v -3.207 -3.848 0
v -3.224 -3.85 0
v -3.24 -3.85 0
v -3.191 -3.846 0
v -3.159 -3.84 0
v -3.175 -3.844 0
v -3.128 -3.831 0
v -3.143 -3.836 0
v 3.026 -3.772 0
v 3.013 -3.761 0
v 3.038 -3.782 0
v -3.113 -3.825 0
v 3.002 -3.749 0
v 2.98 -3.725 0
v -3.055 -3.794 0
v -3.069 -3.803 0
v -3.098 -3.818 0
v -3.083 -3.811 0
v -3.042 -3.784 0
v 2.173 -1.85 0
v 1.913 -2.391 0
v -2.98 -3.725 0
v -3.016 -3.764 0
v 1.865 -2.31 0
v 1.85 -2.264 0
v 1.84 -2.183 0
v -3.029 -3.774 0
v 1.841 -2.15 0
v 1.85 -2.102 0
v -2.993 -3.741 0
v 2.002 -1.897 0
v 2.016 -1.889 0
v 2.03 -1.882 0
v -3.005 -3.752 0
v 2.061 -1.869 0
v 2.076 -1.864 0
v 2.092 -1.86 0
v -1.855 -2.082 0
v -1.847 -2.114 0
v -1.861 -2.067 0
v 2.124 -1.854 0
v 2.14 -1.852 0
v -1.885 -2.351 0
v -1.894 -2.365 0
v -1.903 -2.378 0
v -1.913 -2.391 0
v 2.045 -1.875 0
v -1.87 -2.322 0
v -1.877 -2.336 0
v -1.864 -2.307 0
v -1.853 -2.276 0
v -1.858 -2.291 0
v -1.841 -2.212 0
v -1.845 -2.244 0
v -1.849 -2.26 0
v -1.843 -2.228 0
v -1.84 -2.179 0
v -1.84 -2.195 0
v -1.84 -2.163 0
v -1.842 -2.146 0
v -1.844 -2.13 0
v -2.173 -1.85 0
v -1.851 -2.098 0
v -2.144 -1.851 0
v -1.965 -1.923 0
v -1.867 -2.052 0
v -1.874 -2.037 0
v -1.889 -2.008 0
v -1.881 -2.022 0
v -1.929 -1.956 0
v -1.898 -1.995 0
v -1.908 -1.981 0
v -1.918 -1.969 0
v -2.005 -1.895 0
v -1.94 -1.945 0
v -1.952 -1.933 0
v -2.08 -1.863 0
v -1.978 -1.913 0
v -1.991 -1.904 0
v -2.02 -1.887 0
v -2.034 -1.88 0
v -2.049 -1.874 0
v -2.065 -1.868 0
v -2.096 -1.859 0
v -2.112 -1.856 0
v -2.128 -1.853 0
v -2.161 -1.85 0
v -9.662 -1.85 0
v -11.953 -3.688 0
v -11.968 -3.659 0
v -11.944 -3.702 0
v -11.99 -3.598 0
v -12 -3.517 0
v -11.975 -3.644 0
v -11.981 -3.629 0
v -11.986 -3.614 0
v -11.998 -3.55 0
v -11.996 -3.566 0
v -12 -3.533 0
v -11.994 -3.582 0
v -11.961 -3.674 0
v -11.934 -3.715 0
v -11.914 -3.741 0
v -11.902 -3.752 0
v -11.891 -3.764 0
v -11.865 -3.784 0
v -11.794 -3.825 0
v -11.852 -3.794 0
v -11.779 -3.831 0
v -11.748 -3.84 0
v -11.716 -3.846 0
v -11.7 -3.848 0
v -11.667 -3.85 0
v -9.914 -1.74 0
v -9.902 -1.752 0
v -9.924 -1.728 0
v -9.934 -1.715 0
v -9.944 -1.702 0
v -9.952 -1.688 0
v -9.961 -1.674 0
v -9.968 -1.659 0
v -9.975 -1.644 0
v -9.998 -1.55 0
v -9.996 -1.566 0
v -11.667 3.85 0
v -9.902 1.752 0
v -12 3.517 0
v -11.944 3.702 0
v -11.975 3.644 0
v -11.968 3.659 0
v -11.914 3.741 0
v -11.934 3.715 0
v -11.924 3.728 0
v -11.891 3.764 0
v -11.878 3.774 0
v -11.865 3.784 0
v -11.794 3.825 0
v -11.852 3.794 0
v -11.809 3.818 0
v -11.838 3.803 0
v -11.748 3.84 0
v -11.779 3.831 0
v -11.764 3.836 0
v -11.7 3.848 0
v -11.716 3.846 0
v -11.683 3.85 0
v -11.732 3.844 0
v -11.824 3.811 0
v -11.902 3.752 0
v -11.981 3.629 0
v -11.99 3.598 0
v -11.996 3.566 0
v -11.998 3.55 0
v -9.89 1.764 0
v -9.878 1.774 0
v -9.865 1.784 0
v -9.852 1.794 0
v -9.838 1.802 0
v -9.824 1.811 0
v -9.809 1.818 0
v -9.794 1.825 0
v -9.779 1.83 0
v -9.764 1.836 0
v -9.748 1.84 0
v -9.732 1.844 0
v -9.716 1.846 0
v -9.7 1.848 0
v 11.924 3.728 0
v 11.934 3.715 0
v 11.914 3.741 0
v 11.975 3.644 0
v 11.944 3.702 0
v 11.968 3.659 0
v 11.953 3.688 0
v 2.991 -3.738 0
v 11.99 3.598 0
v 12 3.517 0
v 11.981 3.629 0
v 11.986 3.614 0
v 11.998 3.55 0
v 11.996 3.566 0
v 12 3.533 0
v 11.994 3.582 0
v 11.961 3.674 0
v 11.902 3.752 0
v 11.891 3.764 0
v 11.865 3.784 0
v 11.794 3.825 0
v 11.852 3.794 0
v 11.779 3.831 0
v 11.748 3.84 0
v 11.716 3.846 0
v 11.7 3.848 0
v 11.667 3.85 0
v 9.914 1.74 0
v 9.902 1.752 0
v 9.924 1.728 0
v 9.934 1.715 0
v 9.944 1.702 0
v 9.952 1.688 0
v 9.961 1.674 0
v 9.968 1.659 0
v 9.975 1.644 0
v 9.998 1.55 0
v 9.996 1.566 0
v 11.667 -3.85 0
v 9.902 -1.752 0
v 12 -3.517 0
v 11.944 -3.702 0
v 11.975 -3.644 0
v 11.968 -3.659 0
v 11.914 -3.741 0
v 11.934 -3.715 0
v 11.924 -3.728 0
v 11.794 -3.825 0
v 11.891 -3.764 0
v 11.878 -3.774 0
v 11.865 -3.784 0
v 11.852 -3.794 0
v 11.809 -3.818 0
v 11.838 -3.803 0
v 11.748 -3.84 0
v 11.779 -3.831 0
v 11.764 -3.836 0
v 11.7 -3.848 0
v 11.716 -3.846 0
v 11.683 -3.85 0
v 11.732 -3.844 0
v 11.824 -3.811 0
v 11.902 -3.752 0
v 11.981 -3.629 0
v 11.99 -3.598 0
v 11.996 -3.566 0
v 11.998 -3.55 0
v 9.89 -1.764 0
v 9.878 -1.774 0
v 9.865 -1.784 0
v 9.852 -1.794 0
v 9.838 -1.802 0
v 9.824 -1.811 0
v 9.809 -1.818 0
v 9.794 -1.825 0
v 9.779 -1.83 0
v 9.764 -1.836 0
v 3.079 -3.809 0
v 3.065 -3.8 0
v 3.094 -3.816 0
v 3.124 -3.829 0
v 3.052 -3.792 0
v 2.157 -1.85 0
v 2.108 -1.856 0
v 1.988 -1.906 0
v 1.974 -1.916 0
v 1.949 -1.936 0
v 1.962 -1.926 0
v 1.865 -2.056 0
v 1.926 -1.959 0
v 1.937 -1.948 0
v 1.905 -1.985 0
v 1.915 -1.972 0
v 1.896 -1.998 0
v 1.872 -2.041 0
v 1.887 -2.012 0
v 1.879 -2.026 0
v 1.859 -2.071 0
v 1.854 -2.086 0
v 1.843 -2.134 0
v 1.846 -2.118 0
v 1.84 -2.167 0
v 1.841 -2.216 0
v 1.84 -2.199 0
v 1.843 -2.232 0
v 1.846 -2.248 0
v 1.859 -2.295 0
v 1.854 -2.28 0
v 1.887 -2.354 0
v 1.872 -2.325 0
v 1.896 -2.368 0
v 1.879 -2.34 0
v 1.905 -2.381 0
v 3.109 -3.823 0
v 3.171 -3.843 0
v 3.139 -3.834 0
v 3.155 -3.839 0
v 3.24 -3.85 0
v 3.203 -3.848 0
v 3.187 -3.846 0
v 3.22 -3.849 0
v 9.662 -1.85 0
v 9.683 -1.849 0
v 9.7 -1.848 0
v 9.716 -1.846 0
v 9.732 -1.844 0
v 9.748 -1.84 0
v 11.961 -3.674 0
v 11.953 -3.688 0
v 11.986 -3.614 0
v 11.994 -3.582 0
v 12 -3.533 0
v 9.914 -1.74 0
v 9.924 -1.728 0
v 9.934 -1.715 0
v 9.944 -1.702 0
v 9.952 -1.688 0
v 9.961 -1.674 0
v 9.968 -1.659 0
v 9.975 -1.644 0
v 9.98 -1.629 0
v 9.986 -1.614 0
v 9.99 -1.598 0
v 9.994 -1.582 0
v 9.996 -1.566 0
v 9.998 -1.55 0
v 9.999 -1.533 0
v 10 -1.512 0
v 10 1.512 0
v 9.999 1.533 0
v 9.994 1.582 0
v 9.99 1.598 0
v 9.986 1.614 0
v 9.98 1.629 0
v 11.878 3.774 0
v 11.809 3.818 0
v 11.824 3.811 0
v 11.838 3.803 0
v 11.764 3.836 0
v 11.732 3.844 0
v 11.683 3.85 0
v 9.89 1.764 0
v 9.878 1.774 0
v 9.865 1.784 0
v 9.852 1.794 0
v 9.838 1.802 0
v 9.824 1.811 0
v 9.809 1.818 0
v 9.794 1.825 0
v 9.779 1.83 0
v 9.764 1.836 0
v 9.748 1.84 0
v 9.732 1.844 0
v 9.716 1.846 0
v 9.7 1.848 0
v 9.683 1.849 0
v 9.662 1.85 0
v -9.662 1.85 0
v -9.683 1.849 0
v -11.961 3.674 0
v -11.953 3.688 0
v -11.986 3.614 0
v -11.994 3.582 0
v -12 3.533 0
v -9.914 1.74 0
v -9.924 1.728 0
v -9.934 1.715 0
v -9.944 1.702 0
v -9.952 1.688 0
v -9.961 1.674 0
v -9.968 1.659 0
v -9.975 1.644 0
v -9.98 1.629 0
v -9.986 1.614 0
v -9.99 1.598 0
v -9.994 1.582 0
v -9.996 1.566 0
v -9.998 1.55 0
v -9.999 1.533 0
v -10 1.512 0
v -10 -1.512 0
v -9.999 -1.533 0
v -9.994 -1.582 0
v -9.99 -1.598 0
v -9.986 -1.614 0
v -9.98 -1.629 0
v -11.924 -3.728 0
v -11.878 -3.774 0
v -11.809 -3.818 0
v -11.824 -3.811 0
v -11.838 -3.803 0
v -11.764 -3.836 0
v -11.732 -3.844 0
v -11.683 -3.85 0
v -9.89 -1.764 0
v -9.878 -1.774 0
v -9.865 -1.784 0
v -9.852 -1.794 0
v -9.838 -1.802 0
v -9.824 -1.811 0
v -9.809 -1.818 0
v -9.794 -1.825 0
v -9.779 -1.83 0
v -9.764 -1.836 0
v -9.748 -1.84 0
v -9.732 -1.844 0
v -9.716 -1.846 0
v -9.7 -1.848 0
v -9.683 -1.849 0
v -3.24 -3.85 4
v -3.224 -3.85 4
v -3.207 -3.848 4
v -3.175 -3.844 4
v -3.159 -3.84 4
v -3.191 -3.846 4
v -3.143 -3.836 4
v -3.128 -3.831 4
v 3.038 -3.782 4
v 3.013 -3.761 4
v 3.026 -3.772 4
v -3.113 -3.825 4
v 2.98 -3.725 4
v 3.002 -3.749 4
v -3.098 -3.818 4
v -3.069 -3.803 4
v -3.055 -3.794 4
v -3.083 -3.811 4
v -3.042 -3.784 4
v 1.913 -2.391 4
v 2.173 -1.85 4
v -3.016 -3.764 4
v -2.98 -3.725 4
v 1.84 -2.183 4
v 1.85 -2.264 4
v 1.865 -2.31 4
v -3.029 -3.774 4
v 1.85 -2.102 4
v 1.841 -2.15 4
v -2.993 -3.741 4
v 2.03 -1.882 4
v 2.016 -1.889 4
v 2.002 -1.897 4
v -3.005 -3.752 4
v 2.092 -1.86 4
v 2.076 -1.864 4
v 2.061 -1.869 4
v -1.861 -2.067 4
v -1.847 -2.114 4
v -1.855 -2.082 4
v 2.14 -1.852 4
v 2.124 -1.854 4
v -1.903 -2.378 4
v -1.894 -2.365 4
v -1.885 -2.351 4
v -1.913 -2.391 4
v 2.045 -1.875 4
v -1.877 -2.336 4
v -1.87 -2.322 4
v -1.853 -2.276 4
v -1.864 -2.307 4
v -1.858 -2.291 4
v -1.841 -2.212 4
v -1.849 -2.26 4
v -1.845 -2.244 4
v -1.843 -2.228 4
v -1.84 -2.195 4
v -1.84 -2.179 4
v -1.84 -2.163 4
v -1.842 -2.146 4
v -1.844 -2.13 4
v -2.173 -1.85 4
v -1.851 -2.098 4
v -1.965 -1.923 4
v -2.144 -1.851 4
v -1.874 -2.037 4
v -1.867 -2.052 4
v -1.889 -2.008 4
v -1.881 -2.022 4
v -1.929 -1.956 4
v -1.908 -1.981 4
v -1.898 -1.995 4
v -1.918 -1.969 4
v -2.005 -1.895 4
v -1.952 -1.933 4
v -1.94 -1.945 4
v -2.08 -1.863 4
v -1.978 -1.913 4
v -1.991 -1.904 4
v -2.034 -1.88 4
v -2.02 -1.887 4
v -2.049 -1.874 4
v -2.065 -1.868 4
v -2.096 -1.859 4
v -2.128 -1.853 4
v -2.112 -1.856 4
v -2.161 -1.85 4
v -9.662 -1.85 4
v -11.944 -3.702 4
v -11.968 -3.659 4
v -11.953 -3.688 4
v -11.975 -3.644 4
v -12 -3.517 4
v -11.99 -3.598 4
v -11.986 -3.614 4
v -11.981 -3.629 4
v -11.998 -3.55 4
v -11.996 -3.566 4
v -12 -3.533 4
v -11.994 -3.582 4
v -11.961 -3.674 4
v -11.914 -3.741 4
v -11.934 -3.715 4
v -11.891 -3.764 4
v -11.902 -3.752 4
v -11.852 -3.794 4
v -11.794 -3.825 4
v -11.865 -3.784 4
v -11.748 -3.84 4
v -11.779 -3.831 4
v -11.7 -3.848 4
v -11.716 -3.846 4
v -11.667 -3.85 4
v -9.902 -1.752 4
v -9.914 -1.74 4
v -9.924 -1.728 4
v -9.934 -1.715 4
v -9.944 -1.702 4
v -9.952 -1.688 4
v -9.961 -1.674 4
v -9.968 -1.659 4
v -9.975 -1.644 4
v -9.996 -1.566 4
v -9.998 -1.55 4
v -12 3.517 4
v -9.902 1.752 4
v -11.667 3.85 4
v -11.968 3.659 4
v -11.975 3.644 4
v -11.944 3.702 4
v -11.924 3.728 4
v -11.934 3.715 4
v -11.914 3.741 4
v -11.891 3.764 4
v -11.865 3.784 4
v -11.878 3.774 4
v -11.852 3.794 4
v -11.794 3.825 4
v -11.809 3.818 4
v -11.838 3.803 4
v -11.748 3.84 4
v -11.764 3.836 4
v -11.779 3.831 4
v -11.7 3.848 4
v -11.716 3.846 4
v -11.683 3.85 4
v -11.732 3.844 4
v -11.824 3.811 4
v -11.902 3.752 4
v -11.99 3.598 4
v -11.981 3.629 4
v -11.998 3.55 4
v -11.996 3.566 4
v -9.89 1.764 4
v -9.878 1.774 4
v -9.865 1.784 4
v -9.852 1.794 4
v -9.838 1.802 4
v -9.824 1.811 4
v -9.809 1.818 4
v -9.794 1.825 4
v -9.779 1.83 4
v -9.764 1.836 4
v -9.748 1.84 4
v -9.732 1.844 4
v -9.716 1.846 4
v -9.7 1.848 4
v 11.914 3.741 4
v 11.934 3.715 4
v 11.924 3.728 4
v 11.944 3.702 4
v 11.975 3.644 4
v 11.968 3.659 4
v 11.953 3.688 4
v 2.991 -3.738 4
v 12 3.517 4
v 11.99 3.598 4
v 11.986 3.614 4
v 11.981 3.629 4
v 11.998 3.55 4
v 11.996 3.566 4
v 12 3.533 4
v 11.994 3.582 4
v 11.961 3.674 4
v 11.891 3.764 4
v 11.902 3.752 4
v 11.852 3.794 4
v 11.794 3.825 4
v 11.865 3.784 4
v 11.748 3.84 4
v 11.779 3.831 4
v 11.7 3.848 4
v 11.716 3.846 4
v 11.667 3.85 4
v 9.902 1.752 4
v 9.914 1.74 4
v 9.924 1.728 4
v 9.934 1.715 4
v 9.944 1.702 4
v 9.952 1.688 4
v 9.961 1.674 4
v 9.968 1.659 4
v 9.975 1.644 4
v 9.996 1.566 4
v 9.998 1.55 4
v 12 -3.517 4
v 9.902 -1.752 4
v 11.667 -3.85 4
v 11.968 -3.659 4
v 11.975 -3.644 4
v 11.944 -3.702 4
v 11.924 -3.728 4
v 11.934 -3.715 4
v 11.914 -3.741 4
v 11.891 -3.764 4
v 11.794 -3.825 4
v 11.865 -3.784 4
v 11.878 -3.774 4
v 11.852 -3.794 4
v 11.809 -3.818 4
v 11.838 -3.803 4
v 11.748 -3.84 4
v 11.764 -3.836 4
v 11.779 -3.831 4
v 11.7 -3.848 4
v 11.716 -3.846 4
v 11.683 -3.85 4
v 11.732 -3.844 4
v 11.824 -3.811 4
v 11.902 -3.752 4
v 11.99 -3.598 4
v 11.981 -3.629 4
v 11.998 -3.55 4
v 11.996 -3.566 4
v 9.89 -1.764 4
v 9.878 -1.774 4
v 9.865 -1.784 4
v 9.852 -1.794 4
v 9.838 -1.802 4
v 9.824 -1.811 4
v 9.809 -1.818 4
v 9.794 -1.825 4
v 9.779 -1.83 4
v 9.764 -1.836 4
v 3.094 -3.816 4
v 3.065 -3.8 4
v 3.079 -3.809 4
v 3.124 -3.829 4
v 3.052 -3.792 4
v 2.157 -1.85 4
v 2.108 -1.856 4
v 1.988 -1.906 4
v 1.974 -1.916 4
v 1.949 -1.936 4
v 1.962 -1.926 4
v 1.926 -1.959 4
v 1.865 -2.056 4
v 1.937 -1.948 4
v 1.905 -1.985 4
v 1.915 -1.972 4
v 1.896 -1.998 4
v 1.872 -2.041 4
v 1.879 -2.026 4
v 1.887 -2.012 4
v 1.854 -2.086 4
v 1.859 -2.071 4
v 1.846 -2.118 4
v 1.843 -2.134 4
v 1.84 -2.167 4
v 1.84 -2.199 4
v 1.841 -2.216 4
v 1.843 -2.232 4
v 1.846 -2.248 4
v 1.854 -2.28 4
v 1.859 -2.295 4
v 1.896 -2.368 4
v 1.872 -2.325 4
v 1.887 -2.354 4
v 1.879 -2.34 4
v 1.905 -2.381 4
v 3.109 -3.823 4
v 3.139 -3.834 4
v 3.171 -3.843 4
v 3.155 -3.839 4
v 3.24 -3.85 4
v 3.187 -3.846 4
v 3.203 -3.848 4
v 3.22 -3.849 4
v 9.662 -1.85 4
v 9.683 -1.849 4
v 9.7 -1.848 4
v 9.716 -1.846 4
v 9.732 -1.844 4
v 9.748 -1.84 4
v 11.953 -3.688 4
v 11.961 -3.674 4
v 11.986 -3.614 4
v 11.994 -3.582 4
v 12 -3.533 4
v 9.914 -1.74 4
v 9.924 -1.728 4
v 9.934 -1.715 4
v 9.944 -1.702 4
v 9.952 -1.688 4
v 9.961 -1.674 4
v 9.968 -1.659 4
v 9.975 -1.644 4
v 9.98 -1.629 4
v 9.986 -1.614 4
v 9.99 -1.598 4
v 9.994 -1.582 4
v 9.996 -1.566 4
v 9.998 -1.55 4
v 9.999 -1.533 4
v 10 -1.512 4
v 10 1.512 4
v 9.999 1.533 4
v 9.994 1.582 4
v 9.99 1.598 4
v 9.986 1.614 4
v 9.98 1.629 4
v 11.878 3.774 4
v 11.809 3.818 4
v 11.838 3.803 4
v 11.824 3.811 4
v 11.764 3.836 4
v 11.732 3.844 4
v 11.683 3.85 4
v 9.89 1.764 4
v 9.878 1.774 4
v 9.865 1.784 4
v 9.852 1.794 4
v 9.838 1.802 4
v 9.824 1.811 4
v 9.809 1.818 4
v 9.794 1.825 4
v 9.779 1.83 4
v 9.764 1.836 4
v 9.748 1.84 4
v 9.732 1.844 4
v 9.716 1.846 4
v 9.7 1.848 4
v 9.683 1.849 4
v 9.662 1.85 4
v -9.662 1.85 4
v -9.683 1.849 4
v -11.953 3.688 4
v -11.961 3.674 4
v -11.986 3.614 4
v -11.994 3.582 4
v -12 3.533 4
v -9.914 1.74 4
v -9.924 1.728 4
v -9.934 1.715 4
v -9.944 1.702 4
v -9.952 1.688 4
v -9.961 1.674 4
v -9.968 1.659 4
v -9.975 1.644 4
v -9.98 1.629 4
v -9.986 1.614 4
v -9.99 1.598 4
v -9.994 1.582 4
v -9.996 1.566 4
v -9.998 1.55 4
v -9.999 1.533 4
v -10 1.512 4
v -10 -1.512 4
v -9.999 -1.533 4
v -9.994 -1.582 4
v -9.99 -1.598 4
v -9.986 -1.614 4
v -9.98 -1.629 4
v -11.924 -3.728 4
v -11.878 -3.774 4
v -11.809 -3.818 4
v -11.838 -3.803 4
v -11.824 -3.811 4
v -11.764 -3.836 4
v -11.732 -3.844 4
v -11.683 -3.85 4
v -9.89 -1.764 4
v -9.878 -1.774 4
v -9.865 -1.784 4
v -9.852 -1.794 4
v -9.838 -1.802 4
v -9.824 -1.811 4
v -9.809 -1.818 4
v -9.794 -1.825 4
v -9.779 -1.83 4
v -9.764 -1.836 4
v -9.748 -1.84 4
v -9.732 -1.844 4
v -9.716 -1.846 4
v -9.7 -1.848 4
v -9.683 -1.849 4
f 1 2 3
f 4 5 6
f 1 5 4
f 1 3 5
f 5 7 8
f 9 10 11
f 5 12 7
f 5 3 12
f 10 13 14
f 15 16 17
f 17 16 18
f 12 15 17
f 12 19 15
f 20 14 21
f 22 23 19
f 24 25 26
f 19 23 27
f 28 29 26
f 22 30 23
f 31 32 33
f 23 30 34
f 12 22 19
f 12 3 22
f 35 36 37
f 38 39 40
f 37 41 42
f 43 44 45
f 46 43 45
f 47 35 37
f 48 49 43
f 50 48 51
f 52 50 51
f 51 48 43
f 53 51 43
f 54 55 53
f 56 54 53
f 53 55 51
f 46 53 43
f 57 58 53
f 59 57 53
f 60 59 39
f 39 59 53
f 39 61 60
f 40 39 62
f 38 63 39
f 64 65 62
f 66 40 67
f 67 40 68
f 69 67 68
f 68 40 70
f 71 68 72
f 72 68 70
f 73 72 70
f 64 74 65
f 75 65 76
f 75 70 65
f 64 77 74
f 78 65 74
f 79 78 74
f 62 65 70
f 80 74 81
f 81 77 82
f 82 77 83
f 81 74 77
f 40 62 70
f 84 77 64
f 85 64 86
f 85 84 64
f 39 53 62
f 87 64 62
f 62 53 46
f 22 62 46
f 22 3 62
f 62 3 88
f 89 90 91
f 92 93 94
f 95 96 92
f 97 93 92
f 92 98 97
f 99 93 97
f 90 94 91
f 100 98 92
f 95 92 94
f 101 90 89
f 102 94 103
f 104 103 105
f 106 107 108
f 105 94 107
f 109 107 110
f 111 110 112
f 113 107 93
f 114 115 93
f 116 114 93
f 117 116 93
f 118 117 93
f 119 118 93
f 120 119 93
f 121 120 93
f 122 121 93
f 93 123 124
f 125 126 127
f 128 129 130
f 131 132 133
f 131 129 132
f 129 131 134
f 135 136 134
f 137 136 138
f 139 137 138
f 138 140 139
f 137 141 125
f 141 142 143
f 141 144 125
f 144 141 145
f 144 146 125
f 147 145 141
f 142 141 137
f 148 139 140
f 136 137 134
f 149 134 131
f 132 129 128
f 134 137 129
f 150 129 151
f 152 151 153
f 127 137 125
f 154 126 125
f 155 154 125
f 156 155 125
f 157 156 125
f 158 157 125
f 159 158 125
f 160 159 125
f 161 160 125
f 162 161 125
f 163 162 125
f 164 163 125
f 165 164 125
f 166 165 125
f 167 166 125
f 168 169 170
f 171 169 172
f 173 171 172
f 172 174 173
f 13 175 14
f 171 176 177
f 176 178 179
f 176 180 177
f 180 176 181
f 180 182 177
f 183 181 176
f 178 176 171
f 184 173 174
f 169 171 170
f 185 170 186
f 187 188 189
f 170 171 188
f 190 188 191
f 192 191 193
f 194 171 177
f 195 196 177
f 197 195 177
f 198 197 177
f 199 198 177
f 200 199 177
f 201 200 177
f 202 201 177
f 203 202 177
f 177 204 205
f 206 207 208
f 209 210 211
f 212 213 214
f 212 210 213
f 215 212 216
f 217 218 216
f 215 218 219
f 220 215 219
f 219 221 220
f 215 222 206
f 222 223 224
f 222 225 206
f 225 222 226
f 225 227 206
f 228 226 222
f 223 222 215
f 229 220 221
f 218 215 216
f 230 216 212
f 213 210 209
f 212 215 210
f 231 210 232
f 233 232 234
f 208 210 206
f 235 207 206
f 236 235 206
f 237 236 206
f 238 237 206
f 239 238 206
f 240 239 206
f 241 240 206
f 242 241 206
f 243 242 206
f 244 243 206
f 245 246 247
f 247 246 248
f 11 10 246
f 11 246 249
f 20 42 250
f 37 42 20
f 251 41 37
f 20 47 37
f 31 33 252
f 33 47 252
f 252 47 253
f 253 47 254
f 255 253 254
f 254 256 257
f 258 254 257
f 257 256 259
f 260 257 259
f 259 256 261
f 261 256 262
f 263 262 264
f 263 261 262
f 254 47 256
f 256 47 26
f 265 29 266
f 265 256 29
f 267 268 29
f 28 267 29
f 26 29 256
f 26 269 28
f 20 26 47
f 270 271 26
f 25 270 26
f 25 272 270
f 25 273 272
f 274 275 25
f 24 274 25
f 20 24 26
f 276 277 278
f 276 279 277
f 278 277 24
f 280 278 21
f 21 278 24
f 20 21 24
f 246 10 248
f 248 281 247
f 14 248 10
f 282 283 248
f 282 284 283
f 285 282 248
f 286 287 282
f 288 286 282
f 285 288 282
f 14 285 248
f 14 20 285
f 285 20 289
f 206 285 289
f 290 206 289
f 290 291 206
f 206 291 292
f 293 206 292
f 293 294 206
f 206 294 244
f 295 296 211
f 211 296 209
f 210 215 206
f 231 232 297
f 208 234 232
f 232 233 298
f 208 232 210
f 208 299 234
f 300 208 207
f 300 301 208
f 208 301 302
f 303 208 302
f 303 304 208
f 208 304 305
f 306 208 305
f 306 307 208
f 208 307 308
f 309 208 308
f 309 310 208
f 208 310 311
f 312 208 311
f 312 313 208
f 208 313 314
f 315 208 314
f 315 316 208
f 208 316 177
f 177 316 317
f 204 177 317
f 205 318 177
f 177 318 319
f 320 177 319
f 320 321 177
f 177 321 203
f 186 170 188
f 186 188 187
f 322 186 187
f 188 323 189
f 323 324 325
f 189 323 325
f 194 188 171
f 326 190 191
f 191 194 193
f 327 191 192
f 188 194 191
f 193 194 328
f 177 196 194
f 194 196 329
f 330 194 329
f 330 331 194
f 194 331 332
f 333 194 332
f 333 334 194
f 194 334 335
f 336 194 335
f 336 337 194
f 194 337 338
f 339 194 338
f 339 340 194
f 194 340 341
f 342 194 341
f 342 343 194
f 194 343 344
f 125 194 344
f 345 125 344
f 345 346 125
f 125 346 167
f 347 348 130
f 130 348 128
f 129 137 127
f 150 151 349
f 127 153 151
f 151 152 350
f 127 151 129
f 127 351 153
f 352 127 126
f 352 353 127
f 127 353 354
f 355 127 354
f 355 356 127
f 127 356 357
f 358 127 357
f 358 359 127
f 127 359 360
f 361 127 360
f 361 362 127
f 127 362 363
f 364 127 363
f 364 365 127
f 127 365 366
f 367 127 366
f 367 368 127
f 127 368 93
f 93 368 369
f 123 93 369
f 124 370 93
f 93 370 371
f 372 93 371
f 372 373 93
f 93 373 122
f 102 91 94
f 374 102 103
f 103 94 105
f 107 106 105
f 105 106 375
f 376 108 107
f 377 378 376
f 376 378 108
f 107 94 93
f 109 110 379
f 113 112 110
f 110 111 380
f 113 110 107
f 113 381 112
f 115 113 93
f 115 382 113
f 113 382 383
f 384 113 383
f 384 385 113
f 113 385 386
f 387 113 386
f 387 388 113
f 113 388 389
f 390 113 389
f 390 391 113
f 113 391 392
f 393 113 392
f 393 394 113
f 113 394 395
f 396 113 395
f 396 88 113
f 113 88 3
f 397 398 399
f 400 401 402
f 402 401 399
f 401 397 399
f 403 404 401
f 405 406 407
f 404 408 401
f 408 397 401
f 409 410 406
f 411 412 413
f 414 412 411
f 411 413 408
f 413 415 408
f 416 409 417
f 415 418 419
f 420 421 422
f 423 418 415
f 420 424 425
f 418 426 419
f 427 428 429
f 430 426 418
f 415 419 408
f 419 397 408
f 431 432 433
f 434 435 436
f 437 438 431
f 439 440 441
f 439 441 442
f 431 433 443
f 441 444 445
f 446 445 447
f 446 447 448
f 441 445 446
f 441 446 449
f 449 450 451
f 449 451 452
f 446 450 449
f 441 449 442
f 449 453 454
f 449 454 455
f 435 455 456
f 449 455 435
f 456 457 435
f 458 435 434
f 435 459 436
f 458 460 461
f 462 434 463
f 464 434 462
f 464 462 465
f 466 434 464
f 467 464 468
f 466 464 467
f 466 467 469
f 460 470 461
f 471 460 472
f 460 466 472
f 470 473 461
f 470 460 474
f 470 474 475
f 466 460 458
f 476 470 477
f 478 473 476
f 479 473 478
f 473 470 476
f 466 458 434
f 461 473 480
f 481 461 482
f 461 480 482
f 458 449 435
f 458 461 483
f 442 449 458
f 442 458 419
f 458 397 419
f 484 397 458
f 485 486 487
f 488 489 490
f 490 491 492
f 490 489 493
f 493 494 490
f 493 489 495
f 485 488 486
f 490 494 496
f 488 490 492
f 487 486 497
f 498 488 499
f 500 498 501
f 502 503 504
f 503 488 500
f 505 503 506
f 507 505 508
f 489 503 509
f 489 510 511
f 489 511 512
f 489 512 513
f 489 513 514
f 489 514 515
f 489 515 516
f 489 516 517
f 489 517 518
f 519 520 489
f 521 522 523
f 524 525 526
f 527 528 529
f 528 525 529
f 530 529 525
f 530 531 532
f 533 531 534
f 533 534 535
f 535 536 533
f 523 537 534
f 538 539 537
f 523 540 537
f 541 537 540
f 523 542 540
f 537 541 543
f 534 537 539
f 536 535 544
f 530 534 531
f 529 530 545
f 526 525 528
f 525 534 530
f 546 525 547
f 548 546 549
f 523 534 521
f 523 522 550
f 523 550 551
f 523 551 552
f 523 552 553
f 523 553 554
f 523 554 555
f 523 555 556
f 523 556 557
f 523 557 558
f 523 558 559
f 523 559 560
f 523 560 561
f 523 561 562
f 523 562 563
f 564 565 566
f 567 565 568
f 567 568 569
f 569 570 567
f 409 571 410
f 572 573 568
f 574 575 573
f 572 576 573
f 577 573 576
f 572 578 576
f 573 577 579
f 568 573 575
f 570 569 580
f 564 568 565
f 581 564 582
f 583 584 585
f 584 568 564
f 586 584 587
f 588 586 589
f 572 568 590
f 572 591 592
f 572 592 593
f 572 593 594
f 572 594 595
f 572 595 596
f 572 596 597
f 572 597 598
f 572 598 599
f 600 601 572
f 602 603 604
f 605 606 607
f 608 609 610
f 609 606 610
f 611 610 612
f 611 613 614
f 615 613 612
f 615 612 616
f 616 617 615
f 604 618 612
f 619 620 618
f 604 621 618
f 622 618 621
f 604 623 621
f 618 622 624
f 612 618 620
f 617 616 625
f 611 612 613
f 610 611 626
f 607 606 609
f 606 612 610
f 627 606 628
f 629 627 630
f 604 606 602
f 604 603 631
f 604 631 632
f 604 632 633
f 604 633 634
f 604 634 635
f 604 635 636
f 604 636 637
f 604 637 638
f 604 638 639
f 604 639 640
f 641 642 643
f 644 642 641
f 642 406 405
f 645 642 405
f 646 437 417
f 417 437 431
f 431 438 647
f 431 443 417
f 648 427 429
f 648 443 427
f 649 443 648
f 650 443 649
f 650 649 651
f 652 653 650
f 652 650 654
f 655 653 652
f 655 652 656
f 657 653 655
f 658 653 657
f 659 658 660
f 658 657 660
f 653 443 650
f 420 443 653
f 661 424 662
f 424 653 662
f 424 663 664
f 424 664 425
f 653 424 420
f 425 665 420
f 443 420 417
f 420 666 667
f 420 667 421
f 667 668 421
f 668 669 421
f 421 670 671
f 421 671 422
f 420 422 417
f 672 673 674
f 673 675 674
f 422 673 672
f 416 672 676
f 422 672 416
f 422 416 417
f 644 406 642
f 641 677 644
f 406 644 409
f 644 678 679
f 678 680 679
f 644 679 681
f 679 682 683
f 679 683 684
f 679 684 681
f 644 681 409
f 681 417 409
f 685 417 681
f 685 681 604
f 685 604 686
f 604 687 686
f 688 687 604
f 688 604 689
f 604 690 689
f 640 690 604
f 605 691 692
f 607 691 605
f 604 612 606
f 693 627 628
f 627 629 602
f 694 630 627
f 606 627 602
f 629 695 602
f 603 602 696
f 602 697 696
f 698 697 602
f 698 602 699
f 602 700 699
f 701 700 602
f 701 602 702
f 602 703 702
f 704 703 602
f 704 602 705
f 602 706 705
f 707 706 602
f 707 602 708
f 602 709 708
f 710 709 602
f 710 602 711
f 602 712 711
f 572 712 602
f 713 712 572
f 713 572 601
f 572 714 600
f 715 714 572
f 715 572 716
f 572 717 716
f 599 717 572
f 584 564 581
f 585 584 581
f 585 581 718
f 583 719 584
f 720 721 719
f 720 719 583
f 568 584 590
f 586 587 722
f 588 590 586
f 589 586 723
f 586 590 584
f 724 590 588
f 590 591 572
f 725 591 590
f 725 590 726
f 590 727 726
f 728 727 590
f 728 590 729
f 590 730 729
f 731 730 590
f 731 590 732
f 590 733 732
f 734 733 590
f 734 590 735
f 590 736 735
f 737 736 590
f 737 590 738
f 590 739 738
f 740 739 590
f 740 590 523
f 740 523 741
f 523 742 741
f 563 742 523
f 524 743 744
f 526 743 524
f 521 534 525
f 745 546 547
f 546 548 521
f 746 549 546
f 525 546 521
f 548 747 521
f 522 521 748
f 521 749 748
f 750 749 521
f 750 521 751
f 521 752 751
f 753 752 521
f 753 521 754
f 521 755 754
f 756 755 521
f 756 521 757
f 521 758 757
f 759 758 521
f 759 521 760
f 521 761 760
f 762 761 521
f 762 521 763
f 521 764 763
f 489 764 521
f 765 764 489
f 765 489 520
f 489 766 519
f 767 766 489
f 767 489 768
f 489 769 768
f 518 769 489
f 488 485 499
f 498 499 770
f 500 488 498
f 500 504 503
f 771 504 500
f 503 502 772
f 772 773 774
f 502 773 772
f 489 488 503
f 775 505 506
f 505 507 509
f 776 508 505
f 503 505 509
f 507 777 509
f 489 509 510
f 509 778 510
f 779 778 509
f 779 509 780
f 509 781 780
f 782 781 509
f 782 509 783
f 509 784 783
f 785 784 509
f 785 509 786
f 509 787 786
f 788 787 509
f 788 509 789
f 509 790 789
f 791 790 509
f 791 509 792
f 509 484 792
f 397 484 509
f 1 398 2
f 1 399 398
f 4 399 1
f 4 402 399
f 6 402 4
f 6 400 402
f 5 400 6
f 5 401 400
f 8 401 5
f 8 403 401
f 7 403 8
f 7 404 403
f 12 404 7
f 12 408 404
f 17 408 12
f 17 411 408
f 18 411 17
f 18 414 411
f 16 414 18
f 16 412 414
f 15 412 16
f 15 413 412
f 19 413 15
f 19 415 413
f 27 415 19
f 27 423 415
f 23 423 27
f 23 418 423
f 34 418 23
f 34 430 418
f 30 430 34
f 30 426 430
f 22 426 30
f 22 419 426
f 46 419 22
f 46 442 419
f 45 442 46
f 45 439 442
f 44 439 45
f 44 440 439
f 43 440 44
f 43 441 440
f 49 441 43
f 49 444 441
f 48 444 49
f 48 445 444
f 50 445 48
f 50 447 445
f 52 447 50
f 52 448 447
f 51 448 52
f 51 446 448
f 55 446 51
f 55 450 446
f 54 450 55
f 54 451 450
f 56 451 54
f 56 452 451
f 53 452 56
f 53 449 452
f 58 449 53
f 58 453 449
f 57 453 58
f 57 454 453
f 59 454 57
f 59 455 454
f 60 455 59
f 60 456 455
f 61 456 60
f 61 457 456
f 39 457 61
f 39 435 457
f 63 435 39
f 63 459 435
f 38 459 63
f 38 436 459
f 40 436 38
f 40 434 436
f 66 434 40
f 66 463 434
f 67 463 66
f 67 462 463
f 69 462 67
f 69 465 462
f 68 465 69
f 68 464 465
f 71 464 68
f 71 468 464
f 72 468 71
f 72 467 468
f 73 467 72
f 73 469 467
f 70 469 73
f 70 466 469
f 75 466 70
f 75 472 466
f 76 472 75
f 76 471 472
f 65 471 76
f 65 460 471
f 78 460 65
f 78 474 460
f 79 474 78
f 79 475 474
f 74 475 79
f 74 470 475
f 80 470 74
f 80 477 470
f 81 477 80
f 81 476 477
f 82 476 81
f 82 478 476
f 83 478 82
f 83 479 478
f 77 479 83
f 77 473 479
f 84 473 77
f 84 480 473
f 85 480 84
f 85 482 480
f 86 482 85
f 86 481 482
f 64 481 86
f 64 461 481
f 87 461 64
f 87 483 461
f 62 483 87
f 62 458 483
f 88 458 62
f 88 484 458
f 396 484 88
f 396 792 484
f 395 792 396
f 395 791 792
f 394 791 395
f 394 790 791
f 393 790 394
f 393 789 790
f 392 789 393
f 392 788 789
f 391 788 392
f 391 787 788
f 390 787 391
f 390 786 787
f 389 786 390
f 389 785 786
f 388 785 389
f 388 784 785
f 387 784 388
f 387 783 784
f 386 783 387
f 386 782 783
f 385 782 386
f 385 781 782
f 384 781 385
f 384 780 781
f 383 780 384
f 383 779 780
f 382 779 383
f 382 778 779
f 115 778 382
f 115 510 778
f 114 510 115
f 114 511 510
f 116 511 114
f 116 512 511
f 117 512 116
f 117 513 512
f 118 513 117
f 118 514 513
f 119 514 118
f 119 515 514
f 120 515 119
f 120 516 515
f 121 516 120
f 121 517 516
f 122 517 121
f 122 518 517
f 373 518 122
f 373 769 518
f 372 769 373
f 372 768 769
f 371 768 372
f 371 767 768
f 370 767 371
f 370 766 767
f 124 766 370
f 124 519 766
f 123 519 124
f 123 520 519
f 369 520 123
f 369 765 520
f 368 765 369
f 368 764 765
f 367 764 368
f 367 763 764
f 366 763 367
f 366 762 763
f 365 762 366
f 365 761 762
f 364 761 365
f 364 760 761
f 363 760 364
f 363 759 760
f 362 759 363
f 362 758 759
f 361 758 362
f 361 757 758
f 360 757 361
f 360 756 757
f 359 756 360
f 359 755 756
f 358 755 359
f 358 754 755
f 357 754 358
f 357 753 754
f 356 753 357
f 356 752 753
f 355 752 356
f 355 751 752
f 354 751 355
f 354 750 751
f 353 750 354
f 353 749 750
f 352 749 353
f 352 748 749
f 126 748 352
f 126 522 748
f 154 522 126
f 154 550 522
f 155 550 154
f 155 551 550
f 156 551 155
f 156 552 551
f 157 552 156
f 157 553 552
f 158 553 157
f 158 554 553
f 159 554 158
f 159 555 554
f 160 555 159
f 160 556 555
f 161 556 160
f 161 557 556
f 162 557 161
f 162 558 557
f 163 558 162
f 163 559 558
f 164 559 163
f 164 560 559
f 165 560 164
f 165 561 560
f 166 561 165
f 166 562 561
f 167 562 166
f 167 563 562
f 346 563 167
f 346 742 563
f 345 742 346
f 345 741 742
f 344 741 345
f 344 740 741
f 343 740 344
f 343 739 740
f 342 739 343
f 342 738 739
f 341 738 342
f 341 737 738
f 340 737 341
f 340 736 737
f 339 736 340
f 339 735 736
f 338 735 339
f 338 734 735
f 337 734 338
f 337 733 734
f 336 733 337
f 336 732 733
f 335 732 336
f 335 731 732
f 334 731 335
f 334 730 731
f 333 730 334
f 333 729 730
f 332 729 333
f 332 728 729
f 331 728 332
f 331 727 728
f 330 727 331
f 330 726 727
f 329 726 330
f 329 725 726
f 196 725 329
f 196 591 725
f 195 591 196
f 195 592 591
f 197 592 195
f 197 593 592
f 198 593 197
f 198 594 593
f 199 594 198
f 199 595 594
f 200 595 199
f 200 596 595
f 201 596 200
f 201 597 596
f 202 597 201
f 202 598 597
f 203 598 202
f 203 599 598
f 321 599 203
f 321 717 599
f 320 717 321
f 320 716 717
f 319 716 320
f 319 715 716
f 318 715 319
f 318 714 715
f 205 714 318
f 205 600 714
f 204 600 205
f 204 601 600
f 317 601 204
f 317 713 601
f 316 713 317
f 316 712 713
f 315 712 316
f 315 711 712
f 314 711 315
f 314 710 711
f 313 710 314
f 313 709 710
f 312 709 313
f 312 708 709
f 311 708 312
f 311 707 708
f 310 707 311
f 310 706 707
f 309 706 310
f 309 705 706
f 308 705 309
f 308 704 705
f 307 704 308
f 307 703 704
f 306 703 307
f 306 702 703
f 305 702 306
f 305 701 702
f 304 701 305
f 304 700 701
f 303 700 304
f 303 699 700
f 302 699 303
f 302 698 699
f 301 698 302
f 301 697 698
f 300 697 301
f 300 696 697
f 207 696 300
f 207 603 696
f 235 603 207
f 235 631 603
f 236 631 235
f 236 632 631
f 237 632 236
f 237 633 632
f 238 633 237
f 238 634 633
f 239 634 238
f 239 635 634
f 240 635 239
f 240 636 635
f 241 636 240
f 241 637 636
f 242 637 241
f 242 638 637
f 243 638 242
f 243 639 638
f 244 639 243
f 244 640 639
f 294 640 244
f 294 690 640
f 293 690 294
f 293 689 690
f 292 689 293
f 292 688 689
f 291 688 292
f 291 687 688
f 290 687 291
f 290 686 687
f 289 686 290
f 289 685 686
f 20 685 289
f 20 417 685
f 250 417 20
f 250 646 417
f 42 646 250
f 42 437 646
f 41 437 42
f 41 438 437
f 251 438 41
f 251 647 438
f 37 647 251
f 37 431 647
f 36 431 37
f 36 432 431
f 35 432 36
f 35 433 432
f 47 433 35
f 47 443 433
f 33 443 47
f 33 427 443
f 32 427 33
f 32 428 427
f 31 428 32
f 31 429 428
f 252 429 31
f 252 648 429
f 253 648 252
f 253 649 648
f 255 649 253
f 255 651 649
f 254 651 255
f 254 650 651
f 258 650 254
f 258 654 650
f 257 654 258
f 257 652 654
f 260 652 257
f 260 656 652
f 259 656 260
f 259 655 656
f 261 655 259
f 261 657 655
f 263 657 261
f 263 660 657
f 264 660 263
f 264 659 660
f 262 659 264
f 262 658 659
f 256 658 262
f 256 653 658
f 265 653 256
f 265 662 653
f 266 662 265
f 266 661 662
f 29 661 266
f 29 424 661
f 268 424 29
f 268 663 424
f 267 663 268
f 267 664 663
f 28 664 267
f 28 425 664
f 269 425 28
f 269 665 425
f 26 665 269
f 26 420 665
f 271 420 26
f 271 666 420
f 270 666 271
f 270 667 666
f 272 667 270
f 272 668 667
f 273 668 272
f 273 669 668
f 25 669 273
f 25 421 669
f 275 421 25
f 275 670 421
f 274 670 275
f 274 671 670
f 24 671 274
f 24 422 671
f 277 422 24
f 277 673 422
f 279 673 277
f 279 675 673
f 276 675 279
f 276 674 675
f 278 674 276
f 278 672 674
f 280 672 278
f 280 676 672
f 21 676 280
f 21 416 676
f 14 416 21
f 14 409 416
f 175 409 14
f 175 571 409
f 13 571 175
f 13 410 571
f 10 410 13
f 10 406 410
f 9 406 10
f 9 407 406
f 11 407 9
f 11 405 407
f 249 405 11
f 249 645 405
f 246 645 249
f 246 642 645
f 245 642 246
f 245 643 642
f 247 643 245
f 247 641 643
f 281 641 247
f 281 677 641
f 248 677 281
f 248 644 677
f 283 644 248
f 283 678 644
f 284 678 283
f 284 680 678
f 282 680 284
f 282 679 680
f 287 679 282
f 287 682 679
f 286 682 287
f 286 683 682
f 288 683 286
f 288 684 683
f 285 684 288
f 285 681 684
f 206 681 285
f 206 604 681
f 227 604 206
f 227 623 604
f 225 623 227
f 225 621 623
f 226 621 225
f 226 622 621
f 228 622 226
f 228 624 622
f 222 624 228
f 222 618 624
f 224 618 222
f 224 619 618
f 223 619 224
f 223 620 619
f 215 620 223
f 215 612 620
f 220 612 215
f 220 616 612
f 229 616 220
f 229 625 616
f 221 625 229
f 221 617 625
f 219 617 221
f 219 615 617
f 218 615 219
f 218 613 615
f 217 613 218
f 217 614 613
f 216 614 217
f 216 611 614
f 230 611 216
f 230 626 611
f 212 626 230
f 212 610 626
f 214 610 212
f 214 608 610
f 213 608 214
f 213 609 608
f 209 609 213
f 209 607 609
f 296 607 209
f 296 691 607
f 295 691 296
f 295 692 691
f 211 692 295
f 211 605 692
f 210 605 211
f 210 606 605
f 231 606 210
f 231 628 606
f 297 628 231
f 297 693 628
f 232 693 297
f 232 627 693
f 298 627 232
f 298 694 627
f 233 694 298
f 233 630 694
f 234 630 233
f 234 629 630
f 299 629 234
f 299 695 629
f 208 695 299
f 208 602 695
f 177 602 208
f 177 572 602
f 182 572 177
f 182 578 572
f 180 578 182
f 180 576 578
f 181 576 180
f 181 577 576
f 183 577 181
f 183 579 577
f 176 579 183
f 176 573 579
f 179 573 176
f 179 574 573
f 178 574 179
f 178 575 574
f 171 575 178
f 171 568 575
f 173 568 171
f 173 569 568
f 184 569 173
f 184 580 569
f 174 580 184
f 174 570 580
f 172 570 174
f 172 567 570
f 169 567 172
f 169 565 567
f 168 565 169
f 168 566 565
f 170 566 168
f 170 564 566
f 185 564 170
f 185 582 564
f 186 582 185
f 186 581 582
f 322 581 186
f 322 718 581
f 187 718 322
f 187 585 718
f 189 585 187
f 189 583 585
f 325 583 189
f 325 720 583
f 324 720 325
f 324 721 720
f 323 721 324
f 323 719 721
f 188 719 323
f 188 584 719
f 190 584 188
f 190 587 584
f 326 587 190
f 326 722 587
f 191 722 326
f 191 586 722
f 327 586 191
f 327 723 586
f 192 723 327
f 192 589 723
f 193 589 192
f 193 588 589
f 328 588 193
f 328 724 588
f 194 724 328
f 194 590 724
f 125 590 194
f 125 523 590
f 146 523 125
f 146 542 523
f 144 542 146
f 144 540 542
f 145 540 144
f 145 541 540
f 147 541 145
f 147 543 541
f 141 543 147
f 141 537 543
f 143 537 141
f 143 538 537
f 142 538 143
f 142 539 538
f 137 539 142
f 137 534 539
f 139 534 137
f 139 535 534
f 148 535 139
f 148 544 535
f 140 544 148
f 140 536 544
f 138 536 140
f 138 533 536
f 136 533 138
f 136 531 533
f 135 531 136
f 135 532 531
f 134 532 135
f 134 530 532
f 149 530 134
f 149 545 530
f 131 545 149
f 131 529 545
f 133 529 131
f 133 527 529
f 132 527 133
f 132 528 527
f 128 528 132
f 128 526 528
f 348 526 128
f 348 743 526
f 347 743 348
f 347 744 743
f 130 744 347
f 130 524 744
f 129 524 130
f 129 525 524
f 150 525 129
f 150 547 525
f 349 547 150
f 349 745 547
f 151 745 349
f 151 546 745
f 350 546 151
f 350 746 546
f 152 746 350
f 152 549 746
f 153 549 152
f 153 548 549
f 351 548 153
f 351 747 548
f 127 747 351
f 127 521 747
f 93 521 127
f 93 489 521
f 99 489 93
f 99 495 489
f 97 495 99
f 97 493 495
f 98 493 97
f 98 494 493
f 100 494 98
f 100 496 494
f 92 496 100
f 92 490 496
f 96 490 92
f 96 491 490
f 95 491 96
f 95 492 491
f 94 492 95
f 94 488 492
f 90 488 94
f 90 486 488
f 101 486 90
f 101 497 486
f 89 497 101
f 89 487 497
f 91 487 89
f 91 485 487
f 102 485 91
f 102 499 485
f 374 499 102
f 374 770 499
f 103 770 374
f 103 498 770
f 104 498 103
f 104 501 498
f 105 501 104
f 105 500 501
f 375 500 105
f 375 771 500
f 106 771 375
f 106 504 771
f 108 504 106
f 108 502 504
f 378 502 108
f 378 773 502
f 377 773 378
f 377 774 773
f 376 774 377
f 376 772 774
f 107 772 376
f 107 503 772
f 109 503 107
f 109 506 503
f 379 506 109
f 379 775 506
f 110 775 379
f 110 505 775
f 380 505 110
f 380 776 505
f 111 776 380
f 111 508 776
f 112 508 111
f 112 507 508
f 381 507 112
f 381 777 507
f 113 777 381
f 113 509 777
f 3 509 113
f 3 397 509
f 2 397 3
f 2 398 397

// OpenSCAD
/* [main settings] */

strap_width = 20;
strap_depth = 3.7;

holder_height = 4;
holder_thickness = 2;
opening_width = 1.25;

holder_roundness = 0.333;

// things below this won't show up in the customizer
module __Customizer_Limit__() {}
opening_size = 5;

module round(roundness = 1) {
  offset(roundness) offset(-2 * roundness) offset(roundness)
  children();
}

opening_poly = [
  [0, 0],
  [-opening_size, -opening_size * opening_width],
  [opening_size, -opening_size * opening_width]
];

// set quality, 64 for testing, 128 for rendering
$fn = $preview ? 64 : 128;

// overlap to make the preview pretty
__OVERLAP = $preview ? 0.001 : 0;

module footprint() difference () {
  square([strap_width + holder_thickness * 2, strap_depth + holder_thickness * 2], center = true);

  square([strap_width, strap_depth], center = true);

  #polygon(opening_poly);
}

linear_extrude(holder_height)
round(holder_roundness)
footprint();
